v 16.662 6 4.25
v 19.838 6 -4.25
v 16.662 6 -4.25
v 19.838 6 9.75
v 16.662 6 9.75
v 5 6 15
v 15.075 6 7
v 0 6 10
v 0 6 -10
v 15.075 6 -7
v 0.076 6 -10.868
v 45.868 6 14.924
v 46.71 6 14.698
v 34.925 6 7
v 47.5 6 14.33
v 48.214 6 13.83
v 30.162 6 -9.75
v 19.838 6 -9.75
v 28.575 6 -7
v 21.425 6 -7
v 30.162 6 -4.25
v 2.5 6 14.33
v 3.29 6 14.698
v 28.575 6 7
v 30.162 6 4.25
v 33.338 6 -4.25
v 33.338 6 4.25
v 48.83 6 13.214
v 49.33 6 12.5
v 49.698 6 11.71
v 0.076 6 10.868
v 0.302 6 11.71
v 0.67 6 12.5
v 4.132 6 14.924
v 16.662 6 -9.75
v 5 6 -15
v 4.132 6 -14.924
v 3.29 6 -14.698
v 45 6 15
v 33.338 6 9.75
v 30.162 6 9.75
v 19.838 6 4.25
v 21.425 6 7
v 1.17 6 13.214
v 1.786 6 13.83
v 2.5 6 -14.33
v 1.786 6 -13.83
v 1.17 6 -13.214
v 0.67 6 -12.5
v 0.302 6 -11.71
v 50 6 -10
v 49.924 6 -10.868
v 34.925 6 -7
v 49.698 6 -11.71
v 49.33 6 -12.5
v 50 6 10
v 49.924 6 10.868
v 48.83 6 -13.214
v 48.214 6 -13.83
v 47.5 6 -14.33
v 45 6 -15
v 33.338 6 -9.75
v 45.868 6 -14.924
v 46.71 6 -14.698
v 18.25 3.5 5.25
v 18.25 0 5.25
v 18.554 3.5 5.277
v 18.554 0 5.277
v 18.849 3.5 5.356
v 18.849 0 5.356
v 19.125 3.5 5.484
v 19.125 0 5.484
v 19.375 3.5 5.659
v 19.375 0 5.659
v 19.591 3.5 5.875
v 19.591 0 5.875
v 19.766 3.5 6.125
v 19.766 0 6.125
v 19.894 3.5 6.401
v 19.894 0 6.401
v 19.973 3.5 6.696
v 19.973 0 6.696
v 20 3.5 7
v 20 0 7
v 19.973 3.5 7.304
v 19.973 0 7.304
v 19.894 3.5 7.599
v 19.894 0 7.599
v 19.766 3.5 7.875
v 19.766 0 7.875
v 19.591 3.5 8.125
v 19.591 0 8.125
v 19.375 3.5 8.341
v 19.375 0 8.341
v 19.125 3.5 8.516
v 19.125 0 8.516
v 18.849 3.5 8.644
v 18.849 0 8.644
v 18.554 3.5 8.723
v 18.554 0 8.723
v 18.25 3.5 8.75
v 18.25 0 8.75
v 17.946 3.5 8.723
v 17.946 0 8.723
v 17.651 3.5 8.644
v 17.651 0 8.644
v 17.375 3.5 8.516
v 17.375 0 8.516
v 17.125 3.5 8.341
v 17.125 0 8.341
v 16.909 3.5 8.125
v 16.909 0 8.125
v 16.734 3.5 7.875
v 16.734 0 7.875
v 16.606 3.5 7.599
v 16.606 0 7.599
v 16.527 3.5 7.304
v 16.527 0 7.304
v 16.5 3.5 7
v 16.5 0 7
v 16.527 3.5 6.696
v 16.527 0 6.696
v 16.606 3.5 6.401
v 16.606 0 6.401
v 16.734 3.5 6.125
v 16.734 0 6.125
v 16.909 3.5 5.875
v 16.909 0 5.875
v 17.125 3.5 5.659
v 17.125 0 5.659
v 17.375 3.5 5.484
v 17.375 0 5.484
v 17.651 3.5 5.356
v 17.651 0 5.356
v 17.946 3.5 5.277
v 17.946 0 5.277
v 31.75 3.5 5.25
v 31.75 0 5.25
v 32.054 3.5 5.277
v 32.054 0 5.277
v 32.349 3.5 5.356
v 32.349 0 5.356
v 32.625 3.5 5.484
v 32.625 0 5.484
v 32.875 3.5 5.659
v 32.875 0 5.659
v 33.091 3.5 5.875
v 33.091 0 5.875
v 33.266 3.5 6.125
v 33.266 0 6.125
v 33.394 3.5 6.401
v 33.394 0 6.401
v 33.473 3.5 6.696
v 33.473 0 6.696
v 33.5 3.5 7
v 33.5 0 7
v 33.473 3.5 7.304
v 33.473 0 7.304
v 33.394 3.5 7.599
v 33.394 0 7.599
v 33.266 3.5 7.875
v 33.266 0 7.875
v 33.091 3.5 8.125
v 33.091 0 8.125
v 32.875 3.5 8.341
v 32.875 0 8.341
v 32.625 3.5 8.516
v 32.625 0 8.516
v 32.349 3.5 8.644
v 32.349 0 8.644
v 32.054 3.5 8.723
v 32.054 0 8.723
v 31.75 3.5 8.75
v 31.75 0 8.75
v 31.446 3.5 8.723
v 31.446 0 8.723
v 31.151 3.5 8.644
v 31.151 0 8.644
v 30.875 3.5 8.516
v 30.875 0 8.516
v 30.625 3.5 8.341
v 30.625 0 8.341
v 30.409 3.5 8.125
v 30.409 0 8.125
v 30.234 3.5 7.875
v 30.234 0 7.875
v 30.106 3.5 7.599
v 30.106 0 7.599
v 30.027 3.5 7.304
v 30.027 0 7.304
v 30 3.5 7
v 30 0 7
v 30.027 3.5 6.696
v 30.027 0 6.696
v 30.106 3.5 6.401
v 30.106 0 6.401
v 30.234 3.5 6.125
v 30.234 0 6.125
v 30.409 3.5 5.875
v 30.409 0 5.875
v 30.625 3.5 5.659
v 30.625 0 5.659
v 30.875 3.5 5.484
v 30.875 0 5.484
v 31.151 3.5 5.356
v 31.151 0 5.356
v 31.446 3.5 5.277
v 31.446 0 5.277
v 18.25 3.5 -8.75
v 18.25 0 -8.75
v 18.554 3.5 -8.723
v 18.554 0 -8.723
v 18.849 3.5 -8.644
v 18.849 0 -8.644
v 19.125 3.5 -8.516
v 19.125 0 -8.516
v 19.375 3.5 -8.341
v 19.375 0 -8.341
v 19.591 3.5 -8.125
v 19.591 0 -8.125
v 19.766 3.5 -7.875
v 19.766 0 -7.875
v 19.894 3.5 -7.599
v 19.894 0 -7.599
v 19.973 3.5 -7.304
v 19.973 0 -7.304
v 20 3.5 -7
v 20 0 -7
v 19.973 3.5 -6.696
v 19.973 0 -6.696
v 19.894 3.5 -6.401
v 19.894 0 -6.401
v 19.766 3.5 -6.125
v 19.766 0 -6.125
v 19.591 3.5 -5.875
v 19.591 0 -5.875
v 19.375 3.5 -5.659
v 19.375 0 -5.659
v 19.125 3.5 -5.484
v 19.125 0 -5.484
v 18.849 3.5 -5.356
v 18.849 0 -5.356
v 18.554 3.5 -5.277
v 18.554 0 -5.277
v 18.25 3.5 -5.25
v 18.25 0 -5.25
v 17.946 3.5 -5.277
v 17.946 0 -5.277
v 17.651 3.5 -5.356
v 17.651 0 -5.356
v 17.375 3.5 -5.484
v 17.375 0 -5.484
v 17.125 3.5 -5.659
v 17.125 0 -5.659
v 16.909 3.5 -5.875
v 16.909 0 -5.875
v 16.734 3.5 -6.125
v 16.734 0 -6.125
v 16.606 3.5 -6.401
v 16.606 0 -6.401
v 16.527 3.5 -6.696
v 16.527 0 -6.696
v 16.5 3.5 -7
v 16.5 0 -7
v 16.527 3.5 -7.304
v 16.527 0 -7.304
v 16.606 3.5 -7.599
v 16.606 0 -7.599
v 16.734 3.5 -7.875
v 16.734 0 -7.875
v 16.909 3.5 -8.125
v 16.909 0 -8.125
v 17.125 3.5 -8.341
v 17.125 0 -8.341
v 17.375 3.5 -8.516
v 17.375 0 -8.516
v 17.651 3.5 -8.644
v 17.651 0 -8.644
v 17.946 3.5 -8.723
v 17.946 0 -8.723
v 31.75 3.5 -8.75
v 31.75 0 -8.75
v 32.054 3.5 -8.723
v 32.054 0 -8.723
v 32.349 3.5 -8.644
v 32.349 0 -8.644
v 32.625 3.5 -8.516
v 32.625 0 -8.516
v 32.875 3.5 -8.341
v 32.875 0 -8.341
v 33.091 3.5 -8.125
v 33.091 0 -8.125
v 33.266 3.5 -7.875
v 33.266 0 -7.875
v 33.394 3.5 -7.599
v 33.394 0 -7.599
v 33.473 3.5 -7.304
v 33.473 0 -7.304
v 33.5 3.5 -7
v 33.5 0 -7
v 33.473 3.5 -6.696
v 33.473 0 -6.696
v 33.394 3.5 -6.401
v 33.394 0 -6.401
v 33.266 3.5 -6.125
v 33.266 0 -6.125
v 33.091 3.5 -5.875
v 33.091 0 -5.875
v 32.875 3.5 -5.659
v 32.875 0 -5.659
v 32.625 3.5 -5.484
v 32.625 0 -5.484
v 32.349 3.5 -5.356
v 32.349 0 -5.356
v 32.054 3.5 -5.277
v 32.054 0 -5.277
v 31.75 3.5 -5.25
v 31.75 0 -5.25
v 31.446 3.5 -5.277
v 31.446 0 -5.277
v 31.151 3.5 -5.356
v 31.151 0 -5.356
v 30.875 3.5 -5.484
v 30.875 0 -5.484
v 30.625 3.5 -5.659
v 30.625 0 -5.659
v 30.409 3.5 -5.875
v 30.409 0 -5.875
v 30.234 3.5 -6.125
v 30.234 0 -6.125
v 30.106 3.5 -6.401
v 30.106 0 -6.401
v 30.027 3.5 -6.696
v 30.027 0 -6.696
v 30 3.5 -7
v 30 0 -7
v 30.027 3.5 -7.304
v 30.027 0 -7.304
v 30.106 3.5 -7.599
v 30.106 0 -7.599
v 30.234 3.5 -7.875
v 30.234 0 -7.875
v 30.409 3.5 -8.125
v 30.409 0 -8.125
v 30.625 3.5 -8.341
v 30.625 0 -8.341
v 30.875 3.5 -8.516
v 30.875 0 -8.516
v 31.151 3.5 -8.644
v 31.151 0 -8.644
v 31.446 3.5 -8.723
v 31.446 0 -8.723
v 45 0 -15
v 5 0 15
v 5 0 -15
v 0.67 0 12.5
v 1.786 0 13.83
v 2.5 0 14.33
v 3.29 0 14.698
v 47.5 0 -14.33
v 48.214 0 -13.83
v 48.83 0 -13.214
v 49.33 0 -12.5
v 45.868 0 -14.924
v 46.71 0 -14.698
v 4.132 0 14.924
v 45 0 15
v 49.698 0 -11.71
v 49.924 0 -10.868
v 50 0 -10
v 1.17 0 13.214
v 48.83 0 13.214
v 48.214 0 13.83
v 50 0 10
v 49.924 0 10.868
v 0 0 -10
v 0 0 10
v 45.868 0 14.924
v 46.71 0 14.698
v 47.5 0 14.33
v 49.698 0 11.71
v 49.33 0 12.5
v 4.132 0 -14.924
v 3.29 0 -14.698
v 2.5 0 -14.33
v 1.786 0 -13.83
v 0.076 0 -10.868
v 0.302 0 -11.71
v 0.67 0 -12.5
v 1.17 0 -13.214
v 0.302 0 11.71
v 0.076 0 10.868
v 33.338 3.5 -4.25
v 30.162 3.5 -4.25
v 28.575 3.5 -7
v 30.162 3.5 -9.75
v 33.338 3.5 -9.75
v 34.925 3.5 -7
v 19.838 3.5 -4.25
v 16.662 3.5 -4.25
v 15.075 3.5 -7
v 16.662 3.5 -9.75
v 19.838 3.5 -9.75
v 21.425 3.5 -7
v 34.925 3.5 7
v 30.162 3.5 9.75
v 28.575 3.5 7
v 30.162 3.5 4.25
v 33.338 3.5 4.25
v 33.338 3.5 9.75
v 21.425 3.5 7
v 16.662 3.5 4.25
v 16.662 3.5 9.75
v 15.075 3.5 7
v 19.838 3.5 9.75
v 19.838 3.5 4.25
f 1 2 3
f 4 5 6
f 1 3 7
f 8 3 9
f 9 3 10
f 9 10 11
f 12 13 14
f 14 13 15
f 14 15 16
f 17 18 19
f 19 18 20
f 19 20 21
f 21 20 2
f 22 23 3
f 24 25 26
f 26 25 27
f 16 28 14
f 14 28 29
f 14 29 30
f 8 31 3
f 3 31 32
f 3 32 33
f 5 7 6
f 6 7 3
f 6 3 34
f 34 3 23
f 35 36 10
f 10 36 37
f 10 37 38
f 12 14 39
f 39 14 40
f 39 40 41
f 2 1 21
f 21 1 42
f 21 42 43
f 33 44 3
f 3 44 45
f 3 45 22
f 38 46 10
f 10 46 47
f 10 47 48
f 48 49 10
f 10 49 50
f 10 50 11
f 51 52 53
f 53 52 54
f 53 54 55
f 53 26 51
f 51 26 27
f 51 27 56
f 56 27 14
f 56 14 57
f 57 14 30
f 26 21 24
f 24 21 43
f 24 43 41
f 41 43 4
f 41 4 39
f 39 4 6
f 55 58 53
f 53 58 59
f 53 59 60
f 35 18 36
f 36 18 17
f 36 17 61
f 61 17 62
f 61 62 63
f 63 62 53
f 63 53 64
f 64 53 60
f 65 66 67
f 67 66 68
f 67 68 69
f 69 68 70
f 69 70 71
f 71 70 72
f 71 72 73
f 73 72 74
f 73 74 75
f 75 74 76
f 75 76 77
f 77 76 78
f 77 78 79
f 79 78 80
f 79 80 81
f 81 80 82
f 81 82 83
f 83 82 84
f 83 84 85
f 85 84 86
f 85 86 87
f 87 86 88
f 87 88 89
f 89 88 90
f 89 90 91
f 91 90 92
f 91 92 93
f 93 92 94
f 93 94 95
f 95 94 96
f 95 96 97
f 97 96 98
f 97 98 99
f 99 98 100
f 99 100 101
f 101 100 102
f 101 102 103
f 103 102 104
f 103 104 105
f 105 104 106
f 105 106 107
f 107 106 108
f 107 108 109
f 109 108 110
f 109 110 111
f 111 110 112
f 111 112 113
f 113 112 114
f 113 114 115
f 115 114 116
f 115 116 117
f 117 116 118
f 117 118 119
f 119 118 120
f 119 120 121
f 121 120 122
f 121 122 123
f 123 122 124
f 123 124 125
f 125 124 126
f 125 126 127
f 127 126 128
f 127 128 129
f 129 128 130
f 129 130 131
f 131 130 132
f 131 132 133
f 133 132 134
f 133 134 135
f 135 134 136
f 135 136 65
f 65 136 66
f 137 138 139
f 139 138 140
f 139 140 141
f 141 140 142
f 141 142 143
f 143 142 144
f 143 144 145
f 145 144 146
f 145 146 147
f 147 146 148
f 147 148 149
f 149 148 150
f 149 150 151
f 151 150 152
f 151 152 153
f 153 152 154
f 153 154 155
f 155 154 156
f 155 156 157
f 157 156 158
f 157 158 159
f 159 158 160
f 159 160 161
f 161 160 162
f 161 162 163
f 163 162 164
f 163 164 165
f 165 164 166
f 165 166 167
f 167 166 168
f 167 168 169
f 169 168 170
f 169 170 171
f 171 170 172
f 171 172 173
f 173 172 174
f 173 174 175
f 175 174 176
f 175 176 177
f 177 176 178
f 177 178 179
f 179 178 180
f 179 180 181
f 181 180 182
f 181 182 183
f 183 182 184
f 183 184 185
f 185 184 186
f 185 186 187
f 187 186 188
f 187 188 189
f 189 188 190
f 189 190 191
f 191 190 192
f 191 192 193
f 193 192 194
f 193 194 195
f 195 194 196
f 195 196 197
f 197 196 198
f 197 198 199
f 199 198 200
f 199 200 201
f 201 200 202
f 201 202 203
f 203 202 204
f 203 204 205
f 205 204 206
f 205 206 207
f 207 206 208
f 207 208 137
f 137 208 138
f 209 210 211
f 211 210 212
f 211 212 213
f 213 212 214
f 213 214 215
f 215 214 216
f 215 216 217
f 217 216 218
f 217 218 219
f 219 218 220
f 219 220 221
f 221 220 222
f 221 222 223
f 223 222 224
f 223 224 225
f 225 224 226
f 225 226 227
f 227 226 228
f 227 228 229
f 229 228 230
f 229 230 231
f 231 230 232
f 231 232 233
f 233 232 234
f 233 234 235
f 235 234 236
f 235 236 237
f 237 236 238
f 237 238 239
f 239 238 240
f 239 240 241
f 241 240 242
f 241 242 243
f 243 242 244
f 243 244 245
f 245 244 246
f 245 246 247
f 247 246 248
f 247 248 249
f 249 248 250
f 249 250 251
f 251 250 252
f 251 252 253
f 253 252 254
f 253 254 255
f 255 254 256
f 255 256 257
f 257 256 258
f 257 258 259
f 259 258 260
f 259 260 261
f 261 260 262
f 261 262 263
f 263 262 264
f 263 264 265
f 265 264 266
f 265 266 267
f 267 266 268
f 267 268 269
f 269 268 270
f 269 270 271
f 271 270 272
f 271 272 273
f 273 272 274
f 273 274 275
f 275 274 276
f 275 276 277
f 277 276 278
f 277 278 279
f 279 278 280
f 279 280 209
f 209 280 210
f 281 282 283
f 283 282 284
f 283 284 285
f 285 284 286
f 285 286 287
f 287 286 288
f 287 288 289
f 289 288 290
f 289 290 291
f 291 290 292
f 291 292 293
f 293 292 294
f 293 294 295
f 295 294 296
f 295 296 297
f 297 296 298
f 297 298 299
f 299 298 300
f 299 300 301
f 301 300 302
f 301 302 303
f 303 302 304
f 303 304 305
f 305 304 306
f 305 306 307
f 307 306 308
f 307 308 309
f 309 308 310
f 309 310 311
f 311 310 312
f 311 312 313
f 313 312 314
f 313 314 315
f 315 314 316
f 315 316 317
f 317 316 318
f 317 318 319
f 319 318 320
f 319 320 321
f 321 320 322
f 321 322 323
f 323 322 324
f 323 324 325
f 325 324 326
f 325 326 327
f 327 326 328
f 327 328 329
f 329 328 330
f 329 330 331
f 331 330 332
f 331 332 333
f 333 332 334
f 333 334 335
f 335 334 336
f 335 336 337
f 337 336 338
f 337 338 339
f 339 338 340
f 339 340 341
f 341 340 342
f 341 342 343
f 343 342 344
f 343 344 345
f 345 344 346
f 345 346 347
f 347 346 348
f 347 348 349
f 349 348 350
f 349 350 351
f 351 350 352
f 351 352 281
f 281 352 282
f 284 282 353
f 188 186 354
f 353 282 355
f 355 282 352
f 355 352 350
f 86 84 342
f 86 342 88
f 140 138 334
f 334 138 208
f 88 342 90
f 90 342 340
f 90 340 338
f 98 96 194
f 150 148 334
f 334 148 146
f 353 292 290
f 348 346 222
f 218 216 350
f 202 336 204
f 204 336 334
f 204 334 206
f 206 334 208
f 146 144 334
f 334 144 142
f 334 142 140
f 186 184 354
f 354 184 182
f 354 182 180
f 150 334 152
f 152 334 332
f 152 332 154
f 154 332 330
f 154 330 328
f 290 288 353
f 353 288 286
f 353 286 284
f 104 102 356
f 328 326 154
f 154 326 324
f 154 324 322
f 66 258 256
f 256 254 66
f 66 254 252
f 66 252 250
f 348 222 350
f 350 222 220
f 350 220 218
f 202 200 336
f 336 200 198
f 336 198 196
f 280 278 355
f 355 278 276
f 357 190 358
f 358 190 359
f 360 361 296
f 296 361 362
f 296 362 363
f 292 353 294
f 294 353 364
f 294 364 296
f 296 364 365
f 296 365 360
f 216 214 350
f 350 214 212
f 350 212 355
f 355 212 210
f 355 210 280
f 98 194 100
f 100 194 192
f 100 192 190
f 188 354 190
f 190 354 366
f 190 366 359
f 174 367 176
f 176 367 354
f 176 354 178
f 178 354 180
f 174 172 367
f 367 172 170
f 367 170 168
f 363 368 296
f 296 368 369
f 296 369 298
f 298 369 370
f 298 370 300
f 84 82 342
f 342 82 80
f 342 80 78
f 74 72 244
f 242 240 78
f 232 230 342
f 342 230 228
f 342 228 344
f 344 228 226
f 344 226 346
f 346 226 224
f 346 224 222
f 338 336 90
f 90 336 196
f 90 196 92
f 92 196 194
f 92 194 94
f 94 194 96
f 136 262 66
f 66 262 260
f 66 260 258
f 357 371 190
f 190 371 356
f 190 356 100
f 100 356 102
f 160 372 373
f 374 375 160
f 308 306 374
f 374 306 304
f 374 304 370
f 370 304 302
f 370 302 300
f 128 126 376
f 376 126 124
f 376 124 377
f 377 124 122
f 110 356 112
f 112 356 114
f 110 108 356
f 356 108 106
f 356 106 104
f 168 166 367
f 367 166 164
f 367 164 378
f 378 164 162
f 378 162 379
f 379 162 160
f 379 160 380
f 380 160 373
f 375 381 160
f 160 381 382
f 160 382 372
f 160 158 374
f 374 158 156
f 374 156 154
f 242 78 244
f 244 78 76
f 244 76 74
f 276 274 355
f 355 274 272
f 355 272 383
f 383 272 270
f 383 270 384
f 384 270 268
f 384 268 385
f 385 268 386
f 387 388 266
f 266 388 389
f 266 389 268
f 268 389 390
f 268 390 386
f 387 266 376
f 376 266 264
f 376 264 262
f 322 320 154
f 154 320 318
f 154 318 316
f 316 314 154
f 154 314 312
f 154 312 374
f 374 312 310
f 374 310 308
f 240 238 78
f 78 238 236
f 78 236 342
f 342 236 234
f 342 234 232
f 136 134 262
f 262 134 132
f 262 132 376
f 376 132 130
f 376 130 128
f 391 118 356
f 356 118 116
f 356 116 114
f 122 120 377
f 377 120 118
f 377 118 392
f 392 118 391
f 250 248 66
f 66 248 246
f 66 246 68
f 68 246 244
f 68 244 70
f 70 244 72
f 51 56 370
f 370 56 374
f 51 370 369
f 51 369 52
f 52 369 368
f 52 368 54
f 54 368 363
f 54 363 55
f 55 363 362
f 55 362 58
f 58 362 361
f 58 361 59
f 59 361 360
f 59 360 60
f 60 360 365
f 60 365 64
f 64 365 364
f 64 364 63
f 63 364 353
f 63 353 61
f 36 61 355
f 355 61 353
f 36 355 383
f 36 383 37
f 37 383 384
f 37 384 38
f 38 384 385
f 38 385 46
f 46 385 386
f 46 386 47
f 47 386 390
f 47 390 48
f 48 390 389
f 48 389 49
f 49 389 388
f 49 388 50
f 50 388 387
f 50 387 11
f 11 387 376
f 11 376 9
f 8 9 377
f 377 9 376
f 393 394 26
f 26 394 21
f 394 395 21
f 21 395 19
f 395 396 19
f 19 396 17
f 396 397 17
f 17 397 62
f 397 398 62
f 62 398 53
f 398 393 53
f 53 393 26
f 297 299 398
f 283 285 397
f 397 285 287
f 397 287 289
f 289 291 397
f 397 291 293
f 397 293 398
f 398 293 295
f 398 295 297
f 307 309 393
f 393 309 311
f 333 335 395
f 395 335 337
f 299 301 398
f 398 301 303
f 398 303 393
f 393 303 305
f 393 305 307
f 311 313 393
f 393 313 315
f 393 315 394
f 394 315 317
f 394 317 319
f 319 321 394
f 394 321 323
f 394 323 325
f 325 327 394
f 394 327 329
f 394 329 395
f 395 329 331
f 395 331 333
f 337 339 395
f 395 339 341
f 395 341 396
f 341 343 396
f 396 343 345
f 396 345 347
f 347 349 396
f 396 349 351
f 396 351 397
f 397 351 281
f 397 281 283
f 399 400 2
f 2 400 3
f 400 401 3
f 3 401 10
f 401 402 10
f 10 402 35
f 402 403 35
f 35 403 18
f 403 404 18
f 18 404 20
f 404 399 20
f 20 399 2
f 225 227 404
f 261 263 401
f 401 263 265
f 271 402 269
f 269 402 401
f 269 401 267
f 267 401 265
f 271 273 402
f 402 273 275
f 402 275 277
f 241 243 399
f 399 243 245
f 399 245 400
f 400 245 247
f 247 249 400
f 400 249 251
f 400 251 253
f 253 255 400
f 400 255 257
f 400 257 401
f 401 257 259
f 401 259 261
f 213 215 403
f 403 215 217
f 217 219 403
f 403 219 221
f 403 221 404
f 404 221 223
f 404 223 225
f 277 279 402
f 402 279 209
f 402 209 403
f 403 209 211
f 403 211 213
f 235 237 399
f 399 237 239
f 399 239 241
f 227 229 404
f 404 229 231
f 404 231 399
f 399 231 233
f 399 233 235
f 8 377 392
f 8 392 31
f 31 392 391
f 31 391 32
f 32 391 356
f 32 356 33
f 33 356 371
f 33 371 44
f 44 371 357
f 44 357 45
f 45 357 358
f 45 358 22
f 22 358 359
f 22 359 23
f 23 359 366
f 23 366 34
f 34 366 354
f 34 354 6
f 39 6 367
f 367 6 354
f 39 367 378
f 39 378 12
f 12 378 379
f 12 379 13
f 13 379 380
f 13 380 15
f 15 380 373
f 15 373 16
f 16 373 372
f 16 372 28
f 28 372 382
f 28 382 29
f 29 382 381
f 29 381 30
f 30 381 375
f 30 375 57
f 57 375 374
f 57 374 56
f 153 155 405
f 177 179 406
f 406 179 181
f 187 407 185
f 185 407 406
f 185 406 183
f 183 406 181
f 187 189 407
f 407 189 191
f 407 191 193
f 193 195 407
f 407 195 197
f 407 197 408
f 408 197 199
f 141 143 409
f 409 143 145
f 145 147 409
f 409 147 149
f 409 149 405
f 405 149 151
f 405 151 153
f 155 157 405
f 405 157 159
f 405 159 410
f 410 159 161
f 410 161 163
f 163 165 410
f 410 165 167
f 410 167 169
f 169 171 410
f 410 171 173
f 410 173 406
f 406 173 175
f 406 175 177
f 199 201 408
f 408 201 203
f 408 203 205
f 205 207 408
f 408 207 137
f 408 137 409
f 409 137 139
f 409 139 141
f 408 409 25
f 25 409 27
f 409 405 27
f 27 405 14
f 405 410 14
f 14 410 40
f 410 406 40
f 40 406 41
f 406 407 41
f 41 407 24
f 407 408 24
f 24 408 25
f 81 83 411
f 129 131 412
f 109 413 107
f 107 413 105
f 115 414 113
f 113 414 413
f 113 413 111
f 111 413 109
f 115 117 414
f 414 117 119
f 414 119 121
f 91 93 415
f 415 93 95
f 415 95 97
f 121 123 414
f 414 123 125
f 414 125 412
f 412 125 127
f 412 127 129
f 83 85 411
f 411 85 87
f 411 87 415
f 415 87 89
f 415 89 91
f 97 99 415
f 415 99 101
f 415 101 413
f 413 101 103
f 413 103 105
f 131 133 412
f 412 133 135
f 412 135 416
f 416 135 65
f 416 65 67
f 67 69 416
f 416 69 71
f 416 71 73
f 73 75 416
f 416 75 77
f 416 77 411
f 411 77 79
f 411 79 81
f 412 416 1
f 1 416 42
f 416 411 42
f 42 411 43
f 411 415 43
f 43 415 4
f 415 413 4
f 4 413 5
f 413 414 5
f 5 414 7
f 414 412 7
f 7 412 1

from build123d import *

# Parameters (mm, degrees)
SKETCH1_R           = 1.75
BOSS_EXTRUDE1_DEPTH = 6
CUT_EXTRUDE1_DEPTH  = 2.5
BOSS_EXTRUDE2_DEPTH = 6


with BuildPart() as part:
    # Sketch1 → Boss-Extrude1 (new body)
    with BuildSketch(Plane(origin=(0, 0, 0), x_dir=(1, 0, 0), z_dir=(0, 1, 0))):
        with BuildLine():
            Line((5, 0), (45, 0))
            ThreePointArc((45, 0), (48.535533906, 1.464466094), (50, 5))
            Line((50, 5), (50, 10))
            ThreePointArc((50, 10), (48.535533906, 13.535533906), (45, 15))
            Line((45, 15), (5, 15))
            ThreePointArc((5, 15), (1.464466094, 13.535533906), (0, 10))
            Line((0, 10), (0, 5))
            ThreePointArc((0, 5), (1.464466094, 1.464466094), (5, 0))
        make_face()
        with Locations((18.25, 7)):
            Circle(SKETCH1_R, mode=Mode.SUBTRACT)
        with Locations((31.75, 7)):
            Circle(SKETCH1_R, mode=Mode.SUBTRACT)
    boss_extrude1 = extrude(amount=BOSS_EXTRUDE1_DEPTH)

    # Sketch2 → Cut-Extrude1 (cut)
    with BuildSketch(Plane(origin=(0, 6, 0), x_dir=(1, 0, 0), z_dir=(0, 1, 0))):
        Polygon((19.83771324, 4.25), (21.425426481, 7), (19.83771324, 9.75), (16.66228676, 9.75), (15.074573519, 7), (16.66228676, 4.25), align=None)
        Polygon((33.33771324, 4.25), (34.925426481, 7), (33.33771324, 9.75), (30.16228676, 9.75), (28.574573519, 7), (30.16228676, 4.25), align=None)
    cut_extrude1 = extrude(amount=-CUT_EXTRUDE1_DEPTH, mode=Mode.SUBTRACT)

    # Mirror1: Boss-Extrude1, Cut-Extrude1 across plane
    add(boss_extrude1.mirror(Plane.XY))
    add(cut_extrude1.mirror(Plane.XY), mode=Mode.SUBTRACT)

    # Sketch3 → Boss-Extrude2 (add)
    with BuildSketch(Plane(origin=(0, 6, 0), x_dir=(1, 0, 0), z_dir=(0, 1, 0))):
        with BuildLine():
            Line((50, 5), (50, -5))
            ThreePointArc((50, -5), (48.535533906, -1.464466094), (45, 0))
            ThreePointArc((45, 0), (48.535533906, 1.464466094), (50, 5))
        make_face()
        with BuildLine():
            Line((0, 5), (0, -5))
            ThreePointArc((0, -5), (1.464466094, -1.464466094), (5, 0))
            ThreePointArc((5, 0), (1.464466094, 1.464466094), (0, 5))
        make_face()
    extrude(amount=-BOSS_EXTRUDE2_DEPTH)


solid = part.part
